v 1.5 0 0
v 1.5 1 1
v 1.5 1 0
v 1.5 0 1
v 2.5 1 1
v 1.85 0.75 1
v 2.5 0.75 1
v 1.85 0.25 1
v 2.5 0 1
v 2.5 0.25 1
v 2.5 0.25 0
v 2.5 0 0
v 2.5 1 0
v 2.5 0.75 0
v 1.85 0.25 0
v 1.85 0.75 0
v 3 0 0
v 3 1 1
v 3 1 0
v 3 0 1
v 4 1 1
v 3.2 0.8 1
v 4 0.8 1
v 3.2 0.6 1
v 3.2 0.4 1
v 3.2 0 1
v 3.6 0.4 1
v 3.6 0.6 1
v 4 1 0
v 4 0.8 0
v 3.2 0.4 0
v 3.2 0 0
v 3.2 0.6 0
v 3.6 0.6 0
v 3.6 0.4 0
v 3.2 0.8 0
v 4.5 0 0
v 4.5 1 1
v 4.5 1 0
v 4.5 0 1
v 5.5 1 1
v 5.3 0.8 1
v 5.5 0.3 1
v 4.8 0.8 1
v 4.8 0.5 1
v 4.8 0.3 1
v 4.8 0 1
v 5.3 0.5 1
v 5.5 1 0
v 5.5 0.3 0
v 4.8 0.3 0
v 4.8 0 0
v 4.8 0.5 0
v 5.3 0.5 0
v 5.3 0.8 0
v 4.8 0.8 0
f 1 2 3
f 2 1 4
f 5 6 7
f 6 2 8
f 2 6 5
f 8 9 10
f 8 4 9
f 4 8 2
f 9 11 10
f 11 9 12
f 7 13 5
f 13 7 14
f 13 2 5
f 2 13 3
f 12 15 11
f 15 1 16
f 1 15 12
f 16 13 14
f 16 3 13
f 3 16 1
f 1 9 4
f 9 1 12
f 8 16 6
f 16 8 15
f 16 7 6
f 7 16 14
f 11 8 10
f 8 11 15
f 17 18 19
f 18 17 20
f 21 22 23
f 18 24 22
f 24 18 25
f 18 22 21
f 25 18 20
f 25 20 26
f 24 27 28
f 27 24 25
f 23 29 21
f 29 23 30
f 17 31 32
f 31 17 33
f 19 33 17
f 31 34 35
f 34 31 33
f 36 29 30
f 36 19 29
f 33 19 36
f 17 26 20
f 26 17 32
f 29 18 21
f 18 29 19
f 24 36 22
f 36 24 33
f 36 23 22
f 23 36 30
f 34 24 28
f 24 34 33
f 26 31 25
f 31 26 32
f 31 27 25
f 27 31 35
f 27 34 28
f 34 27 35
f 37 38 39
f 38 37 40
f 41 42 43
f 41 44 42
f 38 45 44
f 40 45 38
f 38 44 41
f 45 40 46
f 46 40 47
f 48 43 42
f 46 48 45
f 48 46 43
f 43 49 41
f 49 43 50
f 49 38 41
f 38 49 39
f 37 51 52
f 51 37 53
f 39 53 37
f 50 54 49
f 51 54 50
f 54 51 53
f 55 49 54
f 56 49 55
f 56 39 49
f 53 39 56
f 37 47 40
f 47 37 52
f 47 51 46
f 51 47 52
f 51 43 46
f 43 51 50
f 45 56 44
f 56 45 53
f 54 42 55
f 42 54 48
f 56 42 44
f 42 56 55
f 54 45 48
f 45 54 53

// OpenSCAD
union() {
  union() {
    difference() {
      translate([2.0000000000, 0.5000000000, 0.5000000000]) {
        translate([-0.5000000000, -0.5000000000, -0.5000000000]) {
          cube([1, 1, 1]);
        }
      }
      translate([2.1750000000, 0.5000000000, 0.5000000000]) {
        scale([0.6500000000, 0.5000000000, 1.0000000000]) {
          translate([-0.5000000000, -0.5000000000, -0.5000000000]) {
            cube([1, 1, 1]);
          }
        }
      }
    }
    difference() {
      translate([3.5000000000, 0.5000000000, 0.5000000000]) {
        translate([-0.5000000000, -0.5000000000, -0.5000000000]) {
          cube([1, 1, 1]);
        }
      }
      difference() {
        translate([3.6000000000, 0.4000000000, 0.5000000000]) {
          scale([0.8000000000, 0.8000000000, 1.0000000000]) {
            translate([-0.5000000000, -0.5000000000, -0.5000000000]) {
              cube([1, 1, 1]);
            }
          }
        }
        translate([3.4000000000, 0.4999995000, 0.5000000000]) {
          scale([0.4000000000, 0.2000000000, 1.0000000000]) {
            translate([-0.5000000000, -0.5000000000, -0.5000000000]) {
              cube([1, 1, 1]);
            }
          }
        }
      }
    }
  }
  difference() {
    translate([5.0000000000, 0.5000000000, 0.5000000000]) {
      translate([-0.5000000000, -0.5000000000, -0.5000000000]) {
        cube([1, 1, 1]);
      }
    }
    union() {
      difference() {
        translate([5.1500000000, 0.1499995000, 0.5000000000]) {
          scale([0.7000000000, 0.3000000000, 1.0000000000]) {
            translate([-0.5000000000, -0.5000000000, -0.5000000000]) {
              cube([1, 1, 1]);
            }
          }
        }
        /* EMPTY */ sphere(r = 0);
      }
      difference() {
        translate([5.0500000000, 0.6499995000, 0.5000000000]) {
          scale([0.5000000000, 0.3000000000, 1.0000000000]) {
            translate([-0.5000000000, -0.5000000000, -0.5000000000]) {
              cube([1, 1, 1]);
            }
          }
        }
        /* EMPTY */ sphere(r = 0);
      }
    }
  }
}
